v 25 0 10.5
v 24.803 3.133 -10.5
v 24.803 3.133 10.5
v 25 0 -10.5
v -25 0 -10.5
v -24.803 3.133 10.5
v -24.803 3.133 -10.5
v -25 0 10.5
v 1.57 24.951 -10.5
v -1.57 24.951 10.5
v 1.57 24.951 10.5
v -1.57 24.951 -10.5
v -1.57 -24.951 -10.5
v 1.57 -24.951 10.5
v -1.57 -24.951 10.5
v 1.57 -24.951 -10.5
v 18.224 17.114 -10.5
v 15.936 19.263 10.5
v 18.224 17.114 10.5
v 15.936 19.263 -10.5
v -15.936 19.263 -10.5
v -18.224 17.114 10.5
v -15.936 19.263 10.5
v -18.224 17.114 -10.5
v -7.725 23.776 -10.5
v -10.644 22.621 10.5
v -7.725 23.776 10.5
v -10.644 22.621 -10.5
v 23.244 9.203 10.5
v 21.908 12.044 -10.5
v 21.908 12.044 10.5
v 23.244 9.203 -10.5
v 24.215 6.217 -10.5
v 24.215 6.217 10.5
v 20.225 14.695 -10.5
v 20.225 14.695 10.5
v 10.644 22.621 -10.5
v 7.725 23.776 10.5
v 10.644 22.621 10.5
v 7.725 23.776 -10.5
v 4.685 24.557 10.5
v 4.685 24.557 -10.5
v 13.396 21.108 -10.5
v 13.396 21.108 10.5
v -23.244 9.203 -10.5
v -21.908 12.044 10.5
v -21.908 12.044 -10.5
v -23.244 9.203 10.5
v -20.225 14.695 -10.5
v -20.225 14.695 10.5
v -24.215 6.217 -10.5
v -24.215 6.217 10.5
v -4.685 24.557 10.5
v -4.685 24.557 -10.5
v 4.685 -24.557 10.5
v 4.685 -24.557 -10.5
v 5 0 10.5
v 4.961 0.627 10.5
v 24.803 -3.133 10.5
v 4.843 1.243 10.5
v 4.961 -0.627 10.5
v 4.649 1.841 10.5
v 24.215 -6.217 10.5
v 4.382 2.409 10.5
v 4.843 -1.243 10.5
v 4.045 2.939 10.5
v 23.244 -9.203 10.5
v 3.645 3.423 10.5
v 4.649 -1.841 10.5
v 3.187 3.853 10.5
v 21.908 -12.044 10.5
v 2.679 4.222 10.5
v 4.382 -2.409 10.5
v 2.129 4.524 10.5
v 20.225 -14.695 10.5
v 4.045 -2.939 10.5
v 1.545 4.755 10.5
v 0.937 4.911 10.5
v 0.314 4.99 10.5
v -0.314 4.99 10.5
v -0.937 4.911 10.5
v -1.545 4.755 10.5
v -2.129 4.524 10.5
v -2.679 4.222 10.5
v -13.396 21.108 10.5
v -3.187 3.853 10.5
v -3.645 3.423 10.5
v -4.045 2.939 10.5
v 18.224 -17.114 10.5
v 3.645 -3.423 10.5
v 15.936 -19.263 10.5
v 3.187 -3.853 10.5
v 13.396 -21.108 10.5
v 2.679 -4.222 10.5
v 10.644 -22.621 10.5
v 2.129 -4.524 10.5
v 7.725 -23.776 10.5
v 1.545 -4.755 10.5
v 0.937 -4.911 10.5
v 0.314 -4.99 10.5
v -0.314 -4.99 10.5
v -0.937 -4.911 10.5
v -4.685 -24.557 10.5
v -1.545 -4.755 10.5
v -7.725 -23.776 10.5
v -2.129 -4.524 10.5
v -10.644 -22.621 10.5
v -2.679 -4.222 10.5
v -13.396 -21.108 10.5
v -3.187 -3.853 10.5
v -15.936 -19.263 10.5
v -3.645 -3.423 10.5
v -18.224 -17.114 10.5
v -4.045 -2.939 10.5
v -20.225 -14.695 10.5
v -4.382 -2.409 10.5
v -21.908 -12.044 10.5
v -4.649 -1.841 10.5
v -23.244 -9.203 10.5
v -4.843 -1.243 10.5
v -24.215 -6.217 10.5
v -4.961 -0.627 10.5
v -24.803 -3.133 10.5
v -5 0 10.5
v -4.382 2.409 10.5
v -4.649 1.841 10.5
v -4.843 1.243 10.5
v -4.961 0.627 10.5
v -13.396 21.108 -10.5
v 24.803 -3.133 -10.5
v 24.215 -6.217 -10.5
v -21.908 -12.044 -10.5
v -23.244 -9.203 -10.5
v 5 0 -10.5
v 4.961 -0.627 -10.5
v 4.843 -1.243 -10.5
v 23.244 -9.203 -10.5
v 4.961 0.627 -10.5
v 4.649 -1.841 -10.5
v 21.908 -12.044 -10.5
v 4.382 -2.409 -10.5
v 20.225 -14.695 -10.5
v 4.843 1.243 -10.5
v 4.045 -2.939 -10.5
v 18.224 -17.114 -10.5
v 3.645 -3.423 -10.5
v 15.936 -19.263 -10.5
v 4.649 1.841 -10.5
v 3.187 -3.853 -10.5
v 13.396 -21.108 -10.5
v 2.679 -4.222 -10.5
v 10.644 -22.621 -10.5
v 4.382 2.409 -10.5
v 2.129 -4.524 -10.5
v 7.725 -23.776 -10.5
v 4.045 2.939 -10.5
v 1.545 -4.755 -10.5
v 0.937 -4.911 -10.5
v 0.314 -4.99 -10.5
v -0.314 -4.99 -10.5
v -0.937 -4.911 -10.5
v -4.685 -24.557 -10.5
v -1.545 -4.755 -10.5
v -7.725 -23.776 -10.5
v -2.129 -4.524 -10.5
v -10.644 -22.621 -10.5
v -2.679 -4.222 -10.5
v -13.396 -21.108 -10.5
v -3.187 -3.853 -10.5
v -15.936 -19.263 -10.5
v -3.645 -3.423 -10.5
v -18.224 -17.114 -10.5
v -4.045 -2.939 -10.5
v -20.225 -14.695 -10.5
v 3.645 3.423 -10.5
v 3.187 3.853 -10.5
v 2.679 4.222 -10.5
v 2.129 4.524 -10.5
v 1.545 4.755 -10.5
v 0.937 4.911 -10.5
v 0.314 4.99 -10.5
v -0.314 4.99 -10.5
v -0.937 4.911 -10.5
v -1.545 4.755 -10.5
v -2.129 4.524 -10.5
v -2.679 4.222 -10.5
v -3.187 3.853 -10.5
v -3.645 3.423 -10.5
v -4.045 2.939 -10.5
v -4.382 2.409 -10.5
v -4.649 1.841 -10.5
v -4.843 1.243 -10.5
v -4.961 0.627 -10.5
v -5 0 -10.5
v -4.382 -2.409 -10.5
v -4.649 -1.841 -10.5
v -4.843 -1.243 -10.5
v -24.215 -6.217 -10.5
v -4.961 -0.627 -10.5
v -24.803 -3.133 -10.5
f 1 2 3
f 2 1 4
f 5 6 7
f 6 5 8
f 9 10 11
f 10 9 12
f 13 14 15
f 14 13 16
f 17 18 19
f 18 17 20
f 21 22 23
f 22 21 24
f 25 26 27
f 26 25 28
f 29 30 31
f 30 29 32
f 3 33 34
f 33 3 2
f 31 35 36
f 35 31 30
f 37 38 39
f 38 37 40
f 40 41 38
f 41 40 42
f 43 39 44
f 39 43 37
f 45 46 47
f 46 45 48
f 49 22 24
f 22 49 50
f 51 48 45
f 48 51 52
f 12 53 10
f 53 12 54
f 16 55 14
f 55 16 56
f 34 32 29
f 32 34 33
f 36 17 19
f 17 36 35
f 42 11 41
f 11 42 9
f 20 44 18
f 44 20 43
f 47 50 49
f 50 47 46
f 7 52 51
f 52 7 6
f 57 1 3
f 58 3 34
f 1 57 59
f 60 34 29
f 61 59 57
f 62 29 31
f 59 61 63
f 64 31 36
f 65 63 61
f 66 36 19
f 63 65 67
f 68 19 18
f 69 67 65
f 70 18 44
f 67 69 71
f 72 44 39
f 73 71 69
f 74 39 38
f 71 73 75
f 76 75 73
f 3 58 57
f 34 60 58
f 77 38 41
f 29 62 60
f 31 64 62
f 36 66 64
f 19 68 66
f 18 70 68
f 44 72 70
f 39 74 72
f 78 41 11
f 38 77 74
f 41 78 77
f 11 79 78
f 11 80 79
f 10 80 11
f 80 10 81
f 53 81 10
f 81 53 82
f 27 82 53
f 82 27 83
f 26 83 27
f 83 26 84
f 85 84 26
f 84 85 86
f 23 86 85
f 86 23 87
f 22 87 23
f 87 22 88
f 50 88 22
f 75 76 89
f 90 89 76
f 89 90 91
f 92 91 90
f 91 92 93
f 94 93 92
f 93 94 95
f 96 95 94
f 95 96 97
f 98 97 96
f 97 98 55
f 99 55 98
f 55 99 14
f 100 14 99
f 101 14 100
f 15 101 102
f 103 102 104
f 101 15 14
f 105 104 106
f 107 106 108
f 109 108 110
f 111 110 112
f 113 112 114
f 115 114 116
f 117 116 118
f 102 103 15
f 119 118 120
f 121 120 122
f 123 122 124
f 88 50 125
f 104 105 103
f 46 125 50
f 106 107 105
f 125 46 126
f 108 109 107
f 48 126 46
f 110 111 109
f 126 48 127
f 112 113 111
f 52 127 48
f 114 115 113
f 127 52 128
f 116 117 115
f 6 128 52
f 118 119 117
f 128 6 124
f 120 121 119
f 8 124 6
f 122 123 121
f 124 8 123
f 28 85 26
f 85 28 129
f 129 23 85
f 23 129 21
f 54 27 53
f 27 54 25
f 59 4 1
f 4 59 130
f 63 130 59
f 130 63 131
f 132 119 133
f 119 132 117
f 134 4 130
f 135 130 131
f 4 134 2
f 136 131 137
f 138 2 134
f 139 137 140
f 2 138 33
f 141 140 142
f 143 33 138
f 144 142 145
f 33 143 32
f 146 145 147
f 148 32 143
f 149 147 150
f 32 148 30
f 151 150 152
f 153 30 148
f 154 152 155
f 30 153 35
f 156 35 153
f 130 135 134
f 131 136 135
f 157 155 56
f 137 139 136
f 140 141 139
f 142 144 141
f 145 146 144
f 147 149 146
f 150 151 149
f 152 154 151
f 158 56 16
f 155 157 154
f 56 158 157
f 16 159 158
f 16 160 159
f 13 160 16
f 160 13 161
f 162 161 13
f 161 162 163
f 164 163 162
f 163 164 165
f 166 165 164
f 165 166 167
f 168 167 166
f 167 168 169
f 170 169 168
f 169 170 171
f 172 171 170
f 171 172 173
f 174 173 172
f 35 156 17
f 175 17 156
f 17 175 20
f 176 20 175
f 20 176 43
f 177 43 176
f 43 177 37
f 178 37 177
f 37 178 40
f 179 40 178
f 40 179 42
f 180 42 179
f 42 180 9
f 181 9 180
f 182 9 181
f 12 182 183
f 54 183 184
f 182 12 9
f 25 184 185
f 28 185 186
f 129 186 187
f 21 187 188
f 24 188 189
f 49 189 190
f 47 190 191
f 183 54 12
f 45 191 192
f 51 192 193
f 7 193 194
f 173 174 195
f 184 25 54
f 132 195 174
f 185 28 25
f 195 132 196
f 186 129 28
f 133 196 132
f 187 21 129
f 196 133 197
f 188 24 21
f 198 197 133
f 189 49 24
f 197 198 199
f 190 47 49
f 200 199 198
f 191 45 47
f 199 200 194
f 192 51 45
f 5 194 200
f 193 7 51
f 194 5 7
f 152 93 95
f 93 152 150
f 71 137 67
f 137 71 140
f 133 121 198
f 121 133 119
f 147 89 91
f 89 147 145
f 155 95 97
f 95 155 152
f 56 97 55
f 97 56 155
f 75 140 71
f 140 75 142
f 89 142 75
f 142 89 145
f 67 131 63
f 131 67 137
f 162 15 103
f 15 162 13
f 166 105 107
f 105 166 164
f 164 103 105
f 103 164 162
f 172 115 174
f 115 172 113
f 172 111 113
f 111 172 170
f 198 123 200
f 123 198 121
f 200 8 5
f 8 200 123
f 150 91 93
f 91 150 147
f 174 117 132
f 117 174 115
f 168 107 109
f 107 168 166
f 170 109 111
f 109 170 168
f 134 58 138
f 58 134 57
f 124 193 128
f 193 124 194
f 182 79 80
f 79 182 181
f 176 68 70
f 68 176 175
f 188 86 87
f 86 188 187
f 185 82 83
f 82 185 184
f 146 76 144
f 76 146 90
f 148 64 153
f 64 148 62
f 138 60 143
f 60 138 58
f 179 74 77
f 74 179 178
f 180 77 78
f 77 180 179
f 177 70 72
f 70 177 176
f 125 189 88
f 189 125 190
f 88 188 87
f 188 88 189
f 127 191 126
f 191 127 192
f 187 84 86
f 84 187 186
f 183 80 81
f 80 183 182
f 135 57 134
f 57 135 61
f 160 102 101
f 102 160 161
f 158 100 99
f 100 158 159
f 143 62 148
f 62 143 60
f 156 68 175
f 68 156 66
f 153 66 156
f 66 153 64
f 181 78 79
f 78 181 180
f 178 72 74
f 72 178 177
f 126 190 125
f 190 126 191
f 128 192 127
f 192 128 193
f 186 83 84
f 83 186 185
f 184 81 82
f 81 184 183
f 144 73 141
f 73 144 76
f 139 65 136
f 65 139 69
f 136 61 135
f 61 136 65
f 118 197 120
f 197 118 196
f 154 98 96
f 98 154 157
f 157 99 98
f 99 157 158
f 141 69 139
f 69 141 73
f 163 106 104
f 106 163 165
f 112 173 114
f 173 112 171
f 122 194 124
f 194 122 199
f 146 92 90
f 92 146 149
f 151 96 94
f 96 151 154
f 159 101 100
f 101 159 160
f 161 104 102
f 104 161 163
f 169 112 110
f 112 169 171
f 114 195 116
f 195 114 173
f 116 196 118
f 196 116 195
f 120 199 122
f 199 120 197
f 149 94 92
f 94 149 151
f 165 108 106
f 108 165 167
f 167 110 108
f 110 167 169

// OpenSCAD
$fn = 50;


difference() {
	union() {
		translate(v = [0, 0, -10.5000000000]) {
			cylinder(h = 21, r = 25.0000000000);
		}
	}
	union() {
		translate(v = [0, 0, -100.0000000000]) {
			cylinder(h = 200, r = 5.0000000000);
		}
	}
}
